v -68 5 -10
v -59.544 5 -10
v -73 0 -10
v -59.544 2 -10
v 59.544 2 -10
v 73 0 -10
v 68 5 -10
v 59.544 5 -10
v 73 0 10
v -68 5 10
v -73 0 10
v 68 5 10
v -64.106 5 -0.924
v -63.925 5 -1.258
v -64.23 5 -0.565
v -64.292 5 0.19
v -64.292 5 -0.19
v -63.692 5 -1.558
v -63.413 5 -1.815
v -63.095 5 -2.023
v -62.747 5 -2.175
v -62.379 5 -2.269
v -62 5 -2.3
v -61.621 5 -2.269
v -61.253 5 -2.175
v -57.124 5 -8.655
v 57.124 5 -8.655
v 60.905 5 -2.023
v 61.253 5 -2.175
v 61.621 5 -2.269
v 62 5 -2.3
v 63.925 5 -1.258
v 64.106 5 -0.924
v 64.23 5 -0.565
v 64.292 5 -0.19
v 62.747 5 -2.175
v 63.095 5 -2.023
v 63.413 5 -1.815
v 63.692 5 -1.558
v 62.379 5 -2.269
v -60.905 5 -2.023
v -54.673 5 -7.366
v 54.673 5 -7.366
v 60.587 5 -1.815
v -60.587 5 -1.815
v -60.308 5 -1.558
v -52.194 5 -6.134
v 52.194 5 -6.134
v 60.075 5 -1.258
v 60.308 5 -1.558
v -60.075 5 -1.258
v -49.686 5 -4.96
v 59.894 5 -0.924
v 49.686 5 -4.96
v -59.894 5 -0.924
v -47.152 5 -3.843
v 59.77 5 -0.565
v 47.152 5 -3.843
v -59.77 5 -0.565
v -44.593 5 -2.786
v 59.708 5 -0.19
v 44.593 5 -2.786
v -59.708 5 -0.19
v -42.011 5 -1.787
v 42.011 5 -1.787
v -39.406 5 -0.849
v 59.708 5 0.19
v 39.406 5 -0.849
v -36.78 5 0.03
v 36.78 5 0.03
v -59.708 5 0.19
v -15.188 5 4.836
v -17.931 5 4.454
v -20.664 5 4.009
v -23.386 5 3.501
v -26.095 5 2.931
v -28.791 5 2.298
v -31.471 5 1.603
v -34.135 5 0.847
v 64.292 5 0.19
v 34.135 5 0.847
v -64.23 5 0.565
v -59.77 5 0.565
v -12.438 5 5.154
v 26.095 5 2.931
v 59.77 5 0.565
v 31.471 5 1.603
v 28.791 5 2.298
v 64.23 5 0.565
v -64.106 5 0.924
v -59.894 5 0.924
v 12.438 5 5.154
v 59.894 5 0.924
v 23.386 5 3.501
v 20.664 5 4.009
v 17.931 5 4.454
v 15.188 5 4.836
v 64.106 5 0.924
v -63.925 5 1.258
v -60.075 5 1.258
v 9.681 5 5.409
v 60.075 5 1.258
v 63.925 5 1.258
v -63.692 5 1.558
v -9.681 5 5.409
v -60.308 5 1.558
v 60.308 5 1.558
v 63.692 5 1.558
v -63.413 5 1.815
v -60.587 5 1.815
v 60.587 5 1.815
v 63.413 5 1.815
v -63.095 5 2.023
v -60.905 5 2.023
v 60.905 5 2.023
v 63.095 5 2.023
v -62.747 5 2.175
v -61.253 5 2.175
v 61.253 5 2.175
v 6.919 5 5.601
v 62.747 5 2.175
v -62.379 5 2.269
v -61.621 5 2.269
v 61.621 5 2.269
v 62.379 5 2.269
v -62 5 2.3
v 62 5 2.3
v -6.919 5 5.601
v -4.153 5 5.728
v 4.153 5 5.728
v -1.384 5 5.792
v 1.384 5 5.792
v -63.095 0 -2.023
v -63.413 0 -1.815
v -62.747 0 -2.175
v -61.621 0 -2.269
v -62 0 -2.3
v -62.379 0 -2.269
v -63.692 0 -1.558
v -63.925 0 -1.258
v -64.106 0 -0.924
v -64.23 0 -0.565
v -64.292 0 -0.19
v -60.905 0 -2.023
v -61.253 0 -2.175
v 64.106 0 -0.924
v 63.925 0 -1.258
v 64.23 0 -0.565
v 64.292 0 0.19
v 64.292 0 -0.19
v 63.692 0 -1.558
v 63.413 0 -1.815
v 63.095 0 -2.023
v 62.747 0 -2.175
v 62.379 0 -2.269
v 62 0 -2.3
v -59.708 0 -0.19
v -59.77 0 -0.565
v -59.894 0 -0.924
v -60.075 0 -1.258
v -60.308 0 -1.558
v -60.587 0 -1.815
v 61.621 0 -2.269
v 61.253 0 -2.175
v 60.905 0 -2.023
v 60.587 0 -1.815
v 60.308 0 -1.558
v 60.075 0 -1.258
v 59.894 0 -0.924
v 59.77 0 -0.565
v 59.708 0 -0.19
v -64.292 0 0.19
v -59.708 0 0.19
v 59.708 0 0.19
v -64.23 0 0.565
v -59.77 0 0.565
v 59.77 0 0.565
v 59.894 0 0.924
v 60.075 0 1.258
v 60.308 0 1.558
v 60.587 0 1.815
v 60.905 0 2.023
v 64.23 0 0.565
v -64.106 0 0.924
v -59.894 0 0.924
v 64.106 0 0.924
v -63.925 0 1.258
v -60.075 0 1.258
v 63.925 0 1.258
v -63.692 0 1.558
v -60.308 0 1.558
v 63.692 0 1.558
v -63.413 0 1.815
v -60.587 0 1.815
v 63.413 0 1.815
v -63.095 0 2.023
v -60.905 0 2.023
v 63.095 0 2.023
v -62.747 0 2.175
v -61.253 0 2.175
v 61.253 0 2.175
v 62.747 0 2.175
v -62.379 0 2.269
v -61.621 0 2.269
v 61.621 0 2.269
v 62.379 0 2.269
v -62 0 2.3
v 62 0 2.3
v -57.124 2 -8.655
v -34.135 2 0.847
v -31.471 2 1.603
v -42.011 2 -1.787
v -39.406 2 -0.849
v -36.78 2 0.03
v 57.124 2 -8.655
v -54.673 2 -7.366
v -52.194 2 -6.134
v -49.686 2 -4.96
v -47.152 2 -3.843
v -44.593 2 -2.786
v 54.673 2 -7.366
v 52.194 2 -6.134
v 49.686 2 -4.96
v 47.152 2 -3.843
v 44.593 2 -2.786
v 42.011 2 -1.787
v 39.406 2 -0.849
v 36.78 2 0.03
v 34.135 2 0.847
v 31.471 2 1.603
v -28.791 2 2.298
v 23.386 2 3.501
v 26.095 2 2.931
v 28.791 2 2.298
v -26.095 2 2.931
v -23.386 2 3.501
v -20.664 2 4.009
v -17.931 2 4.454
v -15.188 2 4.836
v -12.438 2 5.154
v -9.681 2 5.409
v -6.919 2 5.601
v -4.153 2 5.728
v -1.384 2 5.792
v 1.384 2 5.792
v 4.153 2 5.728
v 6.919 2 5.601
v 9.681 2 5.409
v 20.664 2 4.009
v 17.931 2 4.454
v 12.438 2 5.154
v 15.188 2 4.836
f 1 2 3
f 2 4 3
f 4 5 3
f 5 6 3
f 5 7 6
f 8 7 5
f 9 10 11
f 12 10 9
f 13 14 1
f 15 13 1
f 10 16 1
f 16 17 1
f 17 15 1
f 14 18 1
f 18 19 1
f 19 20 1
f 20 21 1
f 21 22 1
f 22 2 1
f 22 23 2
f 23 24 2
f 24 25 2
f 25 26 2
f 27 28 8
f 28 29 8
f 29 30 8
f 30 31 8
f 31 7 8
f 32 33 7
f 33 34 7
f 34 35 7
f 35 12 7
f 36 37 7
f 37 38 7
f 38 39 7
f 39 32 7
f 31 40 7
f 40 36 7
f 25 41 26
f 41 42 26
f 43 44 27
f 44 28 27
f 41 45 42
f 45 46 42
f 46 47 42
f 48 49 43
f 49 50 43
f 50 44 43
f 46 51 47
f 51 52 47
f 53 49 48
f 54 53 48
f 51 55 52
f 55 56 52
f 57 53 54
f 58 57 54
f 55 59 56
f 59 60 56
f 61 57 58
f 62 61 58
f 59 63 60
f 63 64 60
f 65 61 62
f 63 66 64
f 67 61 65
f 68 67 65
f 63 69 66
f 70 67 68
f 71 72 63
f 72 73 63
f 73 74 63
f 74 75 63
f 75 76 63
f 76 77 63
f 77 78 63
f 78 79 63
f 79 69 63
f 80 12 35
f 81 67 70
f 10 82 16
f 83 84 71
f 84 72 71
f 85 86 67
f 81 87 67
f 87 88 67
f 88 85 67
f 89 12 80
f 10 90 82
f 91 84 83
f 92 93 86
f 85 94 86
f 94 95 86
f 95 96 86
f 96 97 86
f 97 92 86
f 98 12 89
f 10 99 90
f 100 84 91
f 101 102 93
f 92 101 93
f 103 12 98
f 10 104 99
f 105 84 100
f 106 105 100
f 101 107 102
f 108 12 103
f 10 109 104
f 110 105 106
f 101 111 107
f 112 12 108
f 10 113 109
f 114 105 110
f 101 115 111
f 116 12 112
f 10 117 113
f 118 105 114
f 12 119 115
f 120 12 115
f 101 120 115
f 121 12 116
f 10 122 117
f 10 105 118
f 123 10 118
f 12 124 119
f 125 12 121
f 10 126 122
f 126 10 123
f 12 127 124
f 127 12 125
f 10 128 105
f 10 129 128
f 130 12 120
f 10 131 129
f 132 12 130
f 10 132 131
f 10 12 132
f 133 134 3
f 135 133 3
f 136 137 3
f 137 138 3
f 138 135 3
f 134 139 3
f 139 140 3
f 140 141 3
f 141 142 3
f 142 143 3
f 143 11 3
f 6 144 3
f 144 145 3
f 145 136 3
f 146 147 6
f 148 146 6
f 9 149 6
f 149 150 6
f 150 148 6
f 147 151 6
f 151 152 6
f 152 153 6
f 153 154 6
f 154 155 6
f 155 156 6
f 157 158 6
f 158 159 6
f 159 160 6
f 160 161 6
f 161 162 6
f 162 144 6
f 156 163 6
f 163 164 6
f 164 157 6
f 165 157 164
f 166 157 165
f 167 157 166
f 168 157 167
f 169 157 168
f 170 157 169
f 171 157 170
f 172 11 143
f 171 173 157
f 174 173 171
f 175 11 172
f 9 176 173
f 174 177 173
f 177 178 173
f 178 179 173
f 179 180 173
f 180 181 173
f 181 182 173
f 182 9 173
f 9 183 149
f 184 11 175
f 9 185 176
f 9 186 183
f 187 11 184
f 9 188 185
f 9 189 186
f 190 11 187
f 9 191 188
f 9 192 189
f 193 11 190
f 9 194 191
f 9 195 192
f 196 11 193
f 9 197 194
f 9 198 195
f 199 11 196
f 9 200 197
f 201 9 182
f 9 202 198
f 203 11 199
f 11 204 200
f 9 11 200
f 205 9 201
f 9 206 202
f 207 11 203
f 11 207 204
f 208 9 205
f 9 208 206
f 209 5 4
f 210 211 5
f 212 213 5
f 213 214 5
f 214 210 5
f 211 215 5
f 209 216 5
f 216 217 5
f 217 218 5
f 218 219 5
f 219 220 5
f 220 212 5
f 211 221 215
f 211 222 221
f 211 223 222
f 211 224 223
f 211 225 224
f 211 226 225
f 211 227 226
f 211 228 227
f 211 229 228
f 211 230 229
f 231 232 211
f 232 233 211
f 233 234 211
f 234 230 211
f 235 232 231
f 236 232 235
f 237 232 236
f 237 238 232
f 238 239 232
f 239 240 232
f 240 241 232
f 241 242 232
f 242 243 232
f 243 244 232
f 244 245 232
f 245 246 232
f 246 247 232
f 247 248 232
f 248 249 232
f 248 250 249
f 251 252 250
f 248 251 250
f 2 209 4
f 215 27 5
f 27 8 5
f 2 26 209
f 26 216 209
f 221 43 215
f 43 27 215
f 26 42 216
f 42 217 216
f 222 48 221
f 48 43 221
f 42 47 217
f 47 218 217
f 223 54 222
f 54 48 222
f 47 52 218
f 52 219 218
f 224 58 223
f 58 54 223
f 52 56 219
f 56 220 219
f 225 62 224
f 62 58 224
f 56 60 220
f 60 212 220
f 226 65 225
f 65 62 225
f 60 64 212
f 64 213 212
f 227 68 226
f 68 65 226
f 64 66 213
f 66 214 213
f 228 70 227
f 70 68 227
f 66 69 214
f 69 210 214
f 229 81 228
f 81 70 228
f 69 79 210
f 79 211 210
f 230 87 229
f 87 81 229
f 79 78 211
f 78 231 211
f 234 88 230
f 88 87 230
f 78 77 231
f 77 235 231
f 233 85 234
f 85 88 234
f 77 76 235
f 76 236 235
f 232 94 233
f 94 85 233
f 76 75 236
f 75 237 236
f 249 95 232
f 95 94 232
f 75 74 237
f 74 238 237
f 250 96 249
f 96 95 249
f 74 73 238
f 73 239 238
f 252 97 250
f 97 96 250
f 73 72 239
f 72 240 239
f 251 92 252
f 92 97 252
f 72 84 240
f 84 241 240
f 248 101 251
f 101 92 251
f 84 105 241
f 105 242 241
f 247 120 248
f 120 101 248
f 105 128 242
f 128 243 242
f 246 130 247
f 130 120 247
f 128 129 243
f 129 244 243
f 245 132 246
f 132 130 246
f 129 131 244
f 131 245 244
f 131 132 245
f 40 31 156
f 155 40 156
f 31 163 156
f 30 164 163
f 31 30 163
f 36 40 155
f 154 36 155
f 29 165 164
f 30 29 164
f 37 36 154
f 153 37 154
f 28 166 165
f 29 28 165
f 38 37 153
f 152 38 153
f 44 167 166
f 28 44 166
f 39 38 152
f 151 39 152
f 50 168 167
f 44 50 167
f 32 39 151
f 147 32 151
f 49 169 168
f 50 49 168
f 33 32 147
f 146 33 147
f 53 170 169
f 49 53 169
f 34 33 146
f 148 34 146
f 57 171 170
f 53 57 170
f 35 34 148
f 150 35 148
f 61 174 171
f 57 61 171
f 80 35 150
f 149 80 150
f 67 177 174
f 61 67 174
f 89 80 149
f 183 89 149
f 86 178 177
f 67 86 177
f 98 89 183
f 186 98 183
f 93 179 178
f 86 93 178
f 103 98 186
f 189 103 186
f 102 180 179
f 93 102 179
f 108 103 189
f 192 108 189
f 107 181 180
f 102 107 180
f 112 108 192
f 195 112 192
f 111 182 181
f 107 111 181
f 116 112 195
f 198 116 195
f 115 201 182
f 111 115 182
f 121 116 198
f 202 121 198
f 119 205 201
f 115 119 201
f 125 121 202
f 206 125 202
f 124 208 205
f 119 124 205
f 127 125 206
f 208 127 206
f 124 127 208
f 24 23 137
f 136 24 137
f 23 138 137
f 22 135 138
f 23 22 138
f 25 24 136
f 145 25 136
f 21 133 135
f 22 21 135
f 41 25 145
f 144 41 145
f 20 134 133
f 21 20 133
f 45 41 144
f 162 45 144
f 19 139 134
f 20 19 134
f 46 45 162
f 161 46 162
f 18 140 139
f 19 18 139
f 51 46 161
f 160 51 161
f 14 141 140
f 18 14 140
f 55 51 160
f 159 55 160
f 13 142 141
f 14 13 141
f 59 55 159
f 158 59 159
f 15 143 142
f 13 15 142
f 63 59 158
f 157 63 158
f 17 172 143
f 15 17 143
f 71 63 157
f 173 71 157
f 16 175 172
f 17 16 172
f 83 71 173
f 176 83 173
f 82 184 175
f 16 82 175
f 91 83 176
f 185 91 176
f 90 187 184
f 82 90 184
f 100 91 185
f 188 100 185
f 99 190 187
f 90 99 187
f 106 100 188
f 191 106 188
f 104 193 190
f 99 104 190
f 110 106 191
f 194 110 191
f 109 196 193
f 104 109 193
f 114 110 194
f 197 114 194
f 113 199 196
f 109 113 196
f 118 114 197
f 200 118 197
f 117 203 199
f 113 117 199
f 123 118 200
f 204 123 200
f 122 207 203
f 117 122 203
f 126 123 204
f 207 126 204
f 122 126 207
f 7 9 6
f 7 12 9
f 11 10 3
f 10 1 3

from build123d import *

# Parameters (mm, degrees)
SKETCH1_W           = 150
SKETCH1_H           = 20
BOSS_EXTRUDE1_DEPTH = 5
SKETCH2_R           = 120.1
CUT_EXTRUDE1_DEPTH  = 3
SKETCH3_R           = 2.3
CUT_EXTRUDE4_DEPTH  = 76.828754441
CHAMFER1_SIZE       = 7


with BuildPart() as part:
    # Sketch1 → Boss-Extrude1 (new body)
    with BuildSketch(Plane(origin=(0, 0, 0), x_dir=(1, 0, 0), z_dir=(0, 1, 0))):
        Rectangle(SKETCH1_W, SKETCH1_H)
    extrude(amount=BOSS_EXTRUDE1_DEPTH)

    # Sketch2 → Cut-Extrude1 (cut)
    with BuildSketch(Plane(origin=(0, 5, 0), x_dir=(1, 0, 0), z_dir=(0, 1, 0))):
        with Locations((0, 114.3)):
            Circle(SKETCH2_R)
    extrude(amount=-CUT_EXTRUDE1_DEPTH, mode=Mode.SUBTRACT)

    # Sketch3 → Cut-Extrude4 (cut, through all)
    with BuildSketch(Plane(origin=(0, 0, 0), x_dir=(1, 0, 0), z_dir=(0, 1, 0))):
        with Locations(Location((-62, 0, 0), (0, 0, 270))):
            Circle(SKETCH3_R)
        with Locations(Location((62, 0, 0), (0, 0, 270))):
            Circle(SKETCH3_R)
    extrude(amount=CUT_EXTRUDE4_DEPTH, mode=Mode.SUBTRACT)

    # Chamfer1
    # the kernel refuses this chamfer: 7 mm, written as the material it takes off along each edge
    with BuildSketch(Plane(origin=(75, 5, 28.001780916), x_dir=(0.02749587661058612, -0.9996219169112968, 0), z_dir=(0, 0, -1)), Plane(origin=(-75, 5, -28.001780916), x_dir=(-0.02749587661058612, -0.9996219169112968, 0), z_dir=(0, 0, 1))) as chamfer1_piece_1:
        Polygon((CHAMFER1_SIZE * 0.999621916911, CHAMFER1_SIZE * 0.0274958766106), (-CHAMFER1_SIZE * 0.0274958766106, CHAMFER1_SIZE * 0.999621916911), (0, 0), align=None)
    extrude(amount=56.003561832, mode=Mode.SUBTRACT)


solid = part.part
